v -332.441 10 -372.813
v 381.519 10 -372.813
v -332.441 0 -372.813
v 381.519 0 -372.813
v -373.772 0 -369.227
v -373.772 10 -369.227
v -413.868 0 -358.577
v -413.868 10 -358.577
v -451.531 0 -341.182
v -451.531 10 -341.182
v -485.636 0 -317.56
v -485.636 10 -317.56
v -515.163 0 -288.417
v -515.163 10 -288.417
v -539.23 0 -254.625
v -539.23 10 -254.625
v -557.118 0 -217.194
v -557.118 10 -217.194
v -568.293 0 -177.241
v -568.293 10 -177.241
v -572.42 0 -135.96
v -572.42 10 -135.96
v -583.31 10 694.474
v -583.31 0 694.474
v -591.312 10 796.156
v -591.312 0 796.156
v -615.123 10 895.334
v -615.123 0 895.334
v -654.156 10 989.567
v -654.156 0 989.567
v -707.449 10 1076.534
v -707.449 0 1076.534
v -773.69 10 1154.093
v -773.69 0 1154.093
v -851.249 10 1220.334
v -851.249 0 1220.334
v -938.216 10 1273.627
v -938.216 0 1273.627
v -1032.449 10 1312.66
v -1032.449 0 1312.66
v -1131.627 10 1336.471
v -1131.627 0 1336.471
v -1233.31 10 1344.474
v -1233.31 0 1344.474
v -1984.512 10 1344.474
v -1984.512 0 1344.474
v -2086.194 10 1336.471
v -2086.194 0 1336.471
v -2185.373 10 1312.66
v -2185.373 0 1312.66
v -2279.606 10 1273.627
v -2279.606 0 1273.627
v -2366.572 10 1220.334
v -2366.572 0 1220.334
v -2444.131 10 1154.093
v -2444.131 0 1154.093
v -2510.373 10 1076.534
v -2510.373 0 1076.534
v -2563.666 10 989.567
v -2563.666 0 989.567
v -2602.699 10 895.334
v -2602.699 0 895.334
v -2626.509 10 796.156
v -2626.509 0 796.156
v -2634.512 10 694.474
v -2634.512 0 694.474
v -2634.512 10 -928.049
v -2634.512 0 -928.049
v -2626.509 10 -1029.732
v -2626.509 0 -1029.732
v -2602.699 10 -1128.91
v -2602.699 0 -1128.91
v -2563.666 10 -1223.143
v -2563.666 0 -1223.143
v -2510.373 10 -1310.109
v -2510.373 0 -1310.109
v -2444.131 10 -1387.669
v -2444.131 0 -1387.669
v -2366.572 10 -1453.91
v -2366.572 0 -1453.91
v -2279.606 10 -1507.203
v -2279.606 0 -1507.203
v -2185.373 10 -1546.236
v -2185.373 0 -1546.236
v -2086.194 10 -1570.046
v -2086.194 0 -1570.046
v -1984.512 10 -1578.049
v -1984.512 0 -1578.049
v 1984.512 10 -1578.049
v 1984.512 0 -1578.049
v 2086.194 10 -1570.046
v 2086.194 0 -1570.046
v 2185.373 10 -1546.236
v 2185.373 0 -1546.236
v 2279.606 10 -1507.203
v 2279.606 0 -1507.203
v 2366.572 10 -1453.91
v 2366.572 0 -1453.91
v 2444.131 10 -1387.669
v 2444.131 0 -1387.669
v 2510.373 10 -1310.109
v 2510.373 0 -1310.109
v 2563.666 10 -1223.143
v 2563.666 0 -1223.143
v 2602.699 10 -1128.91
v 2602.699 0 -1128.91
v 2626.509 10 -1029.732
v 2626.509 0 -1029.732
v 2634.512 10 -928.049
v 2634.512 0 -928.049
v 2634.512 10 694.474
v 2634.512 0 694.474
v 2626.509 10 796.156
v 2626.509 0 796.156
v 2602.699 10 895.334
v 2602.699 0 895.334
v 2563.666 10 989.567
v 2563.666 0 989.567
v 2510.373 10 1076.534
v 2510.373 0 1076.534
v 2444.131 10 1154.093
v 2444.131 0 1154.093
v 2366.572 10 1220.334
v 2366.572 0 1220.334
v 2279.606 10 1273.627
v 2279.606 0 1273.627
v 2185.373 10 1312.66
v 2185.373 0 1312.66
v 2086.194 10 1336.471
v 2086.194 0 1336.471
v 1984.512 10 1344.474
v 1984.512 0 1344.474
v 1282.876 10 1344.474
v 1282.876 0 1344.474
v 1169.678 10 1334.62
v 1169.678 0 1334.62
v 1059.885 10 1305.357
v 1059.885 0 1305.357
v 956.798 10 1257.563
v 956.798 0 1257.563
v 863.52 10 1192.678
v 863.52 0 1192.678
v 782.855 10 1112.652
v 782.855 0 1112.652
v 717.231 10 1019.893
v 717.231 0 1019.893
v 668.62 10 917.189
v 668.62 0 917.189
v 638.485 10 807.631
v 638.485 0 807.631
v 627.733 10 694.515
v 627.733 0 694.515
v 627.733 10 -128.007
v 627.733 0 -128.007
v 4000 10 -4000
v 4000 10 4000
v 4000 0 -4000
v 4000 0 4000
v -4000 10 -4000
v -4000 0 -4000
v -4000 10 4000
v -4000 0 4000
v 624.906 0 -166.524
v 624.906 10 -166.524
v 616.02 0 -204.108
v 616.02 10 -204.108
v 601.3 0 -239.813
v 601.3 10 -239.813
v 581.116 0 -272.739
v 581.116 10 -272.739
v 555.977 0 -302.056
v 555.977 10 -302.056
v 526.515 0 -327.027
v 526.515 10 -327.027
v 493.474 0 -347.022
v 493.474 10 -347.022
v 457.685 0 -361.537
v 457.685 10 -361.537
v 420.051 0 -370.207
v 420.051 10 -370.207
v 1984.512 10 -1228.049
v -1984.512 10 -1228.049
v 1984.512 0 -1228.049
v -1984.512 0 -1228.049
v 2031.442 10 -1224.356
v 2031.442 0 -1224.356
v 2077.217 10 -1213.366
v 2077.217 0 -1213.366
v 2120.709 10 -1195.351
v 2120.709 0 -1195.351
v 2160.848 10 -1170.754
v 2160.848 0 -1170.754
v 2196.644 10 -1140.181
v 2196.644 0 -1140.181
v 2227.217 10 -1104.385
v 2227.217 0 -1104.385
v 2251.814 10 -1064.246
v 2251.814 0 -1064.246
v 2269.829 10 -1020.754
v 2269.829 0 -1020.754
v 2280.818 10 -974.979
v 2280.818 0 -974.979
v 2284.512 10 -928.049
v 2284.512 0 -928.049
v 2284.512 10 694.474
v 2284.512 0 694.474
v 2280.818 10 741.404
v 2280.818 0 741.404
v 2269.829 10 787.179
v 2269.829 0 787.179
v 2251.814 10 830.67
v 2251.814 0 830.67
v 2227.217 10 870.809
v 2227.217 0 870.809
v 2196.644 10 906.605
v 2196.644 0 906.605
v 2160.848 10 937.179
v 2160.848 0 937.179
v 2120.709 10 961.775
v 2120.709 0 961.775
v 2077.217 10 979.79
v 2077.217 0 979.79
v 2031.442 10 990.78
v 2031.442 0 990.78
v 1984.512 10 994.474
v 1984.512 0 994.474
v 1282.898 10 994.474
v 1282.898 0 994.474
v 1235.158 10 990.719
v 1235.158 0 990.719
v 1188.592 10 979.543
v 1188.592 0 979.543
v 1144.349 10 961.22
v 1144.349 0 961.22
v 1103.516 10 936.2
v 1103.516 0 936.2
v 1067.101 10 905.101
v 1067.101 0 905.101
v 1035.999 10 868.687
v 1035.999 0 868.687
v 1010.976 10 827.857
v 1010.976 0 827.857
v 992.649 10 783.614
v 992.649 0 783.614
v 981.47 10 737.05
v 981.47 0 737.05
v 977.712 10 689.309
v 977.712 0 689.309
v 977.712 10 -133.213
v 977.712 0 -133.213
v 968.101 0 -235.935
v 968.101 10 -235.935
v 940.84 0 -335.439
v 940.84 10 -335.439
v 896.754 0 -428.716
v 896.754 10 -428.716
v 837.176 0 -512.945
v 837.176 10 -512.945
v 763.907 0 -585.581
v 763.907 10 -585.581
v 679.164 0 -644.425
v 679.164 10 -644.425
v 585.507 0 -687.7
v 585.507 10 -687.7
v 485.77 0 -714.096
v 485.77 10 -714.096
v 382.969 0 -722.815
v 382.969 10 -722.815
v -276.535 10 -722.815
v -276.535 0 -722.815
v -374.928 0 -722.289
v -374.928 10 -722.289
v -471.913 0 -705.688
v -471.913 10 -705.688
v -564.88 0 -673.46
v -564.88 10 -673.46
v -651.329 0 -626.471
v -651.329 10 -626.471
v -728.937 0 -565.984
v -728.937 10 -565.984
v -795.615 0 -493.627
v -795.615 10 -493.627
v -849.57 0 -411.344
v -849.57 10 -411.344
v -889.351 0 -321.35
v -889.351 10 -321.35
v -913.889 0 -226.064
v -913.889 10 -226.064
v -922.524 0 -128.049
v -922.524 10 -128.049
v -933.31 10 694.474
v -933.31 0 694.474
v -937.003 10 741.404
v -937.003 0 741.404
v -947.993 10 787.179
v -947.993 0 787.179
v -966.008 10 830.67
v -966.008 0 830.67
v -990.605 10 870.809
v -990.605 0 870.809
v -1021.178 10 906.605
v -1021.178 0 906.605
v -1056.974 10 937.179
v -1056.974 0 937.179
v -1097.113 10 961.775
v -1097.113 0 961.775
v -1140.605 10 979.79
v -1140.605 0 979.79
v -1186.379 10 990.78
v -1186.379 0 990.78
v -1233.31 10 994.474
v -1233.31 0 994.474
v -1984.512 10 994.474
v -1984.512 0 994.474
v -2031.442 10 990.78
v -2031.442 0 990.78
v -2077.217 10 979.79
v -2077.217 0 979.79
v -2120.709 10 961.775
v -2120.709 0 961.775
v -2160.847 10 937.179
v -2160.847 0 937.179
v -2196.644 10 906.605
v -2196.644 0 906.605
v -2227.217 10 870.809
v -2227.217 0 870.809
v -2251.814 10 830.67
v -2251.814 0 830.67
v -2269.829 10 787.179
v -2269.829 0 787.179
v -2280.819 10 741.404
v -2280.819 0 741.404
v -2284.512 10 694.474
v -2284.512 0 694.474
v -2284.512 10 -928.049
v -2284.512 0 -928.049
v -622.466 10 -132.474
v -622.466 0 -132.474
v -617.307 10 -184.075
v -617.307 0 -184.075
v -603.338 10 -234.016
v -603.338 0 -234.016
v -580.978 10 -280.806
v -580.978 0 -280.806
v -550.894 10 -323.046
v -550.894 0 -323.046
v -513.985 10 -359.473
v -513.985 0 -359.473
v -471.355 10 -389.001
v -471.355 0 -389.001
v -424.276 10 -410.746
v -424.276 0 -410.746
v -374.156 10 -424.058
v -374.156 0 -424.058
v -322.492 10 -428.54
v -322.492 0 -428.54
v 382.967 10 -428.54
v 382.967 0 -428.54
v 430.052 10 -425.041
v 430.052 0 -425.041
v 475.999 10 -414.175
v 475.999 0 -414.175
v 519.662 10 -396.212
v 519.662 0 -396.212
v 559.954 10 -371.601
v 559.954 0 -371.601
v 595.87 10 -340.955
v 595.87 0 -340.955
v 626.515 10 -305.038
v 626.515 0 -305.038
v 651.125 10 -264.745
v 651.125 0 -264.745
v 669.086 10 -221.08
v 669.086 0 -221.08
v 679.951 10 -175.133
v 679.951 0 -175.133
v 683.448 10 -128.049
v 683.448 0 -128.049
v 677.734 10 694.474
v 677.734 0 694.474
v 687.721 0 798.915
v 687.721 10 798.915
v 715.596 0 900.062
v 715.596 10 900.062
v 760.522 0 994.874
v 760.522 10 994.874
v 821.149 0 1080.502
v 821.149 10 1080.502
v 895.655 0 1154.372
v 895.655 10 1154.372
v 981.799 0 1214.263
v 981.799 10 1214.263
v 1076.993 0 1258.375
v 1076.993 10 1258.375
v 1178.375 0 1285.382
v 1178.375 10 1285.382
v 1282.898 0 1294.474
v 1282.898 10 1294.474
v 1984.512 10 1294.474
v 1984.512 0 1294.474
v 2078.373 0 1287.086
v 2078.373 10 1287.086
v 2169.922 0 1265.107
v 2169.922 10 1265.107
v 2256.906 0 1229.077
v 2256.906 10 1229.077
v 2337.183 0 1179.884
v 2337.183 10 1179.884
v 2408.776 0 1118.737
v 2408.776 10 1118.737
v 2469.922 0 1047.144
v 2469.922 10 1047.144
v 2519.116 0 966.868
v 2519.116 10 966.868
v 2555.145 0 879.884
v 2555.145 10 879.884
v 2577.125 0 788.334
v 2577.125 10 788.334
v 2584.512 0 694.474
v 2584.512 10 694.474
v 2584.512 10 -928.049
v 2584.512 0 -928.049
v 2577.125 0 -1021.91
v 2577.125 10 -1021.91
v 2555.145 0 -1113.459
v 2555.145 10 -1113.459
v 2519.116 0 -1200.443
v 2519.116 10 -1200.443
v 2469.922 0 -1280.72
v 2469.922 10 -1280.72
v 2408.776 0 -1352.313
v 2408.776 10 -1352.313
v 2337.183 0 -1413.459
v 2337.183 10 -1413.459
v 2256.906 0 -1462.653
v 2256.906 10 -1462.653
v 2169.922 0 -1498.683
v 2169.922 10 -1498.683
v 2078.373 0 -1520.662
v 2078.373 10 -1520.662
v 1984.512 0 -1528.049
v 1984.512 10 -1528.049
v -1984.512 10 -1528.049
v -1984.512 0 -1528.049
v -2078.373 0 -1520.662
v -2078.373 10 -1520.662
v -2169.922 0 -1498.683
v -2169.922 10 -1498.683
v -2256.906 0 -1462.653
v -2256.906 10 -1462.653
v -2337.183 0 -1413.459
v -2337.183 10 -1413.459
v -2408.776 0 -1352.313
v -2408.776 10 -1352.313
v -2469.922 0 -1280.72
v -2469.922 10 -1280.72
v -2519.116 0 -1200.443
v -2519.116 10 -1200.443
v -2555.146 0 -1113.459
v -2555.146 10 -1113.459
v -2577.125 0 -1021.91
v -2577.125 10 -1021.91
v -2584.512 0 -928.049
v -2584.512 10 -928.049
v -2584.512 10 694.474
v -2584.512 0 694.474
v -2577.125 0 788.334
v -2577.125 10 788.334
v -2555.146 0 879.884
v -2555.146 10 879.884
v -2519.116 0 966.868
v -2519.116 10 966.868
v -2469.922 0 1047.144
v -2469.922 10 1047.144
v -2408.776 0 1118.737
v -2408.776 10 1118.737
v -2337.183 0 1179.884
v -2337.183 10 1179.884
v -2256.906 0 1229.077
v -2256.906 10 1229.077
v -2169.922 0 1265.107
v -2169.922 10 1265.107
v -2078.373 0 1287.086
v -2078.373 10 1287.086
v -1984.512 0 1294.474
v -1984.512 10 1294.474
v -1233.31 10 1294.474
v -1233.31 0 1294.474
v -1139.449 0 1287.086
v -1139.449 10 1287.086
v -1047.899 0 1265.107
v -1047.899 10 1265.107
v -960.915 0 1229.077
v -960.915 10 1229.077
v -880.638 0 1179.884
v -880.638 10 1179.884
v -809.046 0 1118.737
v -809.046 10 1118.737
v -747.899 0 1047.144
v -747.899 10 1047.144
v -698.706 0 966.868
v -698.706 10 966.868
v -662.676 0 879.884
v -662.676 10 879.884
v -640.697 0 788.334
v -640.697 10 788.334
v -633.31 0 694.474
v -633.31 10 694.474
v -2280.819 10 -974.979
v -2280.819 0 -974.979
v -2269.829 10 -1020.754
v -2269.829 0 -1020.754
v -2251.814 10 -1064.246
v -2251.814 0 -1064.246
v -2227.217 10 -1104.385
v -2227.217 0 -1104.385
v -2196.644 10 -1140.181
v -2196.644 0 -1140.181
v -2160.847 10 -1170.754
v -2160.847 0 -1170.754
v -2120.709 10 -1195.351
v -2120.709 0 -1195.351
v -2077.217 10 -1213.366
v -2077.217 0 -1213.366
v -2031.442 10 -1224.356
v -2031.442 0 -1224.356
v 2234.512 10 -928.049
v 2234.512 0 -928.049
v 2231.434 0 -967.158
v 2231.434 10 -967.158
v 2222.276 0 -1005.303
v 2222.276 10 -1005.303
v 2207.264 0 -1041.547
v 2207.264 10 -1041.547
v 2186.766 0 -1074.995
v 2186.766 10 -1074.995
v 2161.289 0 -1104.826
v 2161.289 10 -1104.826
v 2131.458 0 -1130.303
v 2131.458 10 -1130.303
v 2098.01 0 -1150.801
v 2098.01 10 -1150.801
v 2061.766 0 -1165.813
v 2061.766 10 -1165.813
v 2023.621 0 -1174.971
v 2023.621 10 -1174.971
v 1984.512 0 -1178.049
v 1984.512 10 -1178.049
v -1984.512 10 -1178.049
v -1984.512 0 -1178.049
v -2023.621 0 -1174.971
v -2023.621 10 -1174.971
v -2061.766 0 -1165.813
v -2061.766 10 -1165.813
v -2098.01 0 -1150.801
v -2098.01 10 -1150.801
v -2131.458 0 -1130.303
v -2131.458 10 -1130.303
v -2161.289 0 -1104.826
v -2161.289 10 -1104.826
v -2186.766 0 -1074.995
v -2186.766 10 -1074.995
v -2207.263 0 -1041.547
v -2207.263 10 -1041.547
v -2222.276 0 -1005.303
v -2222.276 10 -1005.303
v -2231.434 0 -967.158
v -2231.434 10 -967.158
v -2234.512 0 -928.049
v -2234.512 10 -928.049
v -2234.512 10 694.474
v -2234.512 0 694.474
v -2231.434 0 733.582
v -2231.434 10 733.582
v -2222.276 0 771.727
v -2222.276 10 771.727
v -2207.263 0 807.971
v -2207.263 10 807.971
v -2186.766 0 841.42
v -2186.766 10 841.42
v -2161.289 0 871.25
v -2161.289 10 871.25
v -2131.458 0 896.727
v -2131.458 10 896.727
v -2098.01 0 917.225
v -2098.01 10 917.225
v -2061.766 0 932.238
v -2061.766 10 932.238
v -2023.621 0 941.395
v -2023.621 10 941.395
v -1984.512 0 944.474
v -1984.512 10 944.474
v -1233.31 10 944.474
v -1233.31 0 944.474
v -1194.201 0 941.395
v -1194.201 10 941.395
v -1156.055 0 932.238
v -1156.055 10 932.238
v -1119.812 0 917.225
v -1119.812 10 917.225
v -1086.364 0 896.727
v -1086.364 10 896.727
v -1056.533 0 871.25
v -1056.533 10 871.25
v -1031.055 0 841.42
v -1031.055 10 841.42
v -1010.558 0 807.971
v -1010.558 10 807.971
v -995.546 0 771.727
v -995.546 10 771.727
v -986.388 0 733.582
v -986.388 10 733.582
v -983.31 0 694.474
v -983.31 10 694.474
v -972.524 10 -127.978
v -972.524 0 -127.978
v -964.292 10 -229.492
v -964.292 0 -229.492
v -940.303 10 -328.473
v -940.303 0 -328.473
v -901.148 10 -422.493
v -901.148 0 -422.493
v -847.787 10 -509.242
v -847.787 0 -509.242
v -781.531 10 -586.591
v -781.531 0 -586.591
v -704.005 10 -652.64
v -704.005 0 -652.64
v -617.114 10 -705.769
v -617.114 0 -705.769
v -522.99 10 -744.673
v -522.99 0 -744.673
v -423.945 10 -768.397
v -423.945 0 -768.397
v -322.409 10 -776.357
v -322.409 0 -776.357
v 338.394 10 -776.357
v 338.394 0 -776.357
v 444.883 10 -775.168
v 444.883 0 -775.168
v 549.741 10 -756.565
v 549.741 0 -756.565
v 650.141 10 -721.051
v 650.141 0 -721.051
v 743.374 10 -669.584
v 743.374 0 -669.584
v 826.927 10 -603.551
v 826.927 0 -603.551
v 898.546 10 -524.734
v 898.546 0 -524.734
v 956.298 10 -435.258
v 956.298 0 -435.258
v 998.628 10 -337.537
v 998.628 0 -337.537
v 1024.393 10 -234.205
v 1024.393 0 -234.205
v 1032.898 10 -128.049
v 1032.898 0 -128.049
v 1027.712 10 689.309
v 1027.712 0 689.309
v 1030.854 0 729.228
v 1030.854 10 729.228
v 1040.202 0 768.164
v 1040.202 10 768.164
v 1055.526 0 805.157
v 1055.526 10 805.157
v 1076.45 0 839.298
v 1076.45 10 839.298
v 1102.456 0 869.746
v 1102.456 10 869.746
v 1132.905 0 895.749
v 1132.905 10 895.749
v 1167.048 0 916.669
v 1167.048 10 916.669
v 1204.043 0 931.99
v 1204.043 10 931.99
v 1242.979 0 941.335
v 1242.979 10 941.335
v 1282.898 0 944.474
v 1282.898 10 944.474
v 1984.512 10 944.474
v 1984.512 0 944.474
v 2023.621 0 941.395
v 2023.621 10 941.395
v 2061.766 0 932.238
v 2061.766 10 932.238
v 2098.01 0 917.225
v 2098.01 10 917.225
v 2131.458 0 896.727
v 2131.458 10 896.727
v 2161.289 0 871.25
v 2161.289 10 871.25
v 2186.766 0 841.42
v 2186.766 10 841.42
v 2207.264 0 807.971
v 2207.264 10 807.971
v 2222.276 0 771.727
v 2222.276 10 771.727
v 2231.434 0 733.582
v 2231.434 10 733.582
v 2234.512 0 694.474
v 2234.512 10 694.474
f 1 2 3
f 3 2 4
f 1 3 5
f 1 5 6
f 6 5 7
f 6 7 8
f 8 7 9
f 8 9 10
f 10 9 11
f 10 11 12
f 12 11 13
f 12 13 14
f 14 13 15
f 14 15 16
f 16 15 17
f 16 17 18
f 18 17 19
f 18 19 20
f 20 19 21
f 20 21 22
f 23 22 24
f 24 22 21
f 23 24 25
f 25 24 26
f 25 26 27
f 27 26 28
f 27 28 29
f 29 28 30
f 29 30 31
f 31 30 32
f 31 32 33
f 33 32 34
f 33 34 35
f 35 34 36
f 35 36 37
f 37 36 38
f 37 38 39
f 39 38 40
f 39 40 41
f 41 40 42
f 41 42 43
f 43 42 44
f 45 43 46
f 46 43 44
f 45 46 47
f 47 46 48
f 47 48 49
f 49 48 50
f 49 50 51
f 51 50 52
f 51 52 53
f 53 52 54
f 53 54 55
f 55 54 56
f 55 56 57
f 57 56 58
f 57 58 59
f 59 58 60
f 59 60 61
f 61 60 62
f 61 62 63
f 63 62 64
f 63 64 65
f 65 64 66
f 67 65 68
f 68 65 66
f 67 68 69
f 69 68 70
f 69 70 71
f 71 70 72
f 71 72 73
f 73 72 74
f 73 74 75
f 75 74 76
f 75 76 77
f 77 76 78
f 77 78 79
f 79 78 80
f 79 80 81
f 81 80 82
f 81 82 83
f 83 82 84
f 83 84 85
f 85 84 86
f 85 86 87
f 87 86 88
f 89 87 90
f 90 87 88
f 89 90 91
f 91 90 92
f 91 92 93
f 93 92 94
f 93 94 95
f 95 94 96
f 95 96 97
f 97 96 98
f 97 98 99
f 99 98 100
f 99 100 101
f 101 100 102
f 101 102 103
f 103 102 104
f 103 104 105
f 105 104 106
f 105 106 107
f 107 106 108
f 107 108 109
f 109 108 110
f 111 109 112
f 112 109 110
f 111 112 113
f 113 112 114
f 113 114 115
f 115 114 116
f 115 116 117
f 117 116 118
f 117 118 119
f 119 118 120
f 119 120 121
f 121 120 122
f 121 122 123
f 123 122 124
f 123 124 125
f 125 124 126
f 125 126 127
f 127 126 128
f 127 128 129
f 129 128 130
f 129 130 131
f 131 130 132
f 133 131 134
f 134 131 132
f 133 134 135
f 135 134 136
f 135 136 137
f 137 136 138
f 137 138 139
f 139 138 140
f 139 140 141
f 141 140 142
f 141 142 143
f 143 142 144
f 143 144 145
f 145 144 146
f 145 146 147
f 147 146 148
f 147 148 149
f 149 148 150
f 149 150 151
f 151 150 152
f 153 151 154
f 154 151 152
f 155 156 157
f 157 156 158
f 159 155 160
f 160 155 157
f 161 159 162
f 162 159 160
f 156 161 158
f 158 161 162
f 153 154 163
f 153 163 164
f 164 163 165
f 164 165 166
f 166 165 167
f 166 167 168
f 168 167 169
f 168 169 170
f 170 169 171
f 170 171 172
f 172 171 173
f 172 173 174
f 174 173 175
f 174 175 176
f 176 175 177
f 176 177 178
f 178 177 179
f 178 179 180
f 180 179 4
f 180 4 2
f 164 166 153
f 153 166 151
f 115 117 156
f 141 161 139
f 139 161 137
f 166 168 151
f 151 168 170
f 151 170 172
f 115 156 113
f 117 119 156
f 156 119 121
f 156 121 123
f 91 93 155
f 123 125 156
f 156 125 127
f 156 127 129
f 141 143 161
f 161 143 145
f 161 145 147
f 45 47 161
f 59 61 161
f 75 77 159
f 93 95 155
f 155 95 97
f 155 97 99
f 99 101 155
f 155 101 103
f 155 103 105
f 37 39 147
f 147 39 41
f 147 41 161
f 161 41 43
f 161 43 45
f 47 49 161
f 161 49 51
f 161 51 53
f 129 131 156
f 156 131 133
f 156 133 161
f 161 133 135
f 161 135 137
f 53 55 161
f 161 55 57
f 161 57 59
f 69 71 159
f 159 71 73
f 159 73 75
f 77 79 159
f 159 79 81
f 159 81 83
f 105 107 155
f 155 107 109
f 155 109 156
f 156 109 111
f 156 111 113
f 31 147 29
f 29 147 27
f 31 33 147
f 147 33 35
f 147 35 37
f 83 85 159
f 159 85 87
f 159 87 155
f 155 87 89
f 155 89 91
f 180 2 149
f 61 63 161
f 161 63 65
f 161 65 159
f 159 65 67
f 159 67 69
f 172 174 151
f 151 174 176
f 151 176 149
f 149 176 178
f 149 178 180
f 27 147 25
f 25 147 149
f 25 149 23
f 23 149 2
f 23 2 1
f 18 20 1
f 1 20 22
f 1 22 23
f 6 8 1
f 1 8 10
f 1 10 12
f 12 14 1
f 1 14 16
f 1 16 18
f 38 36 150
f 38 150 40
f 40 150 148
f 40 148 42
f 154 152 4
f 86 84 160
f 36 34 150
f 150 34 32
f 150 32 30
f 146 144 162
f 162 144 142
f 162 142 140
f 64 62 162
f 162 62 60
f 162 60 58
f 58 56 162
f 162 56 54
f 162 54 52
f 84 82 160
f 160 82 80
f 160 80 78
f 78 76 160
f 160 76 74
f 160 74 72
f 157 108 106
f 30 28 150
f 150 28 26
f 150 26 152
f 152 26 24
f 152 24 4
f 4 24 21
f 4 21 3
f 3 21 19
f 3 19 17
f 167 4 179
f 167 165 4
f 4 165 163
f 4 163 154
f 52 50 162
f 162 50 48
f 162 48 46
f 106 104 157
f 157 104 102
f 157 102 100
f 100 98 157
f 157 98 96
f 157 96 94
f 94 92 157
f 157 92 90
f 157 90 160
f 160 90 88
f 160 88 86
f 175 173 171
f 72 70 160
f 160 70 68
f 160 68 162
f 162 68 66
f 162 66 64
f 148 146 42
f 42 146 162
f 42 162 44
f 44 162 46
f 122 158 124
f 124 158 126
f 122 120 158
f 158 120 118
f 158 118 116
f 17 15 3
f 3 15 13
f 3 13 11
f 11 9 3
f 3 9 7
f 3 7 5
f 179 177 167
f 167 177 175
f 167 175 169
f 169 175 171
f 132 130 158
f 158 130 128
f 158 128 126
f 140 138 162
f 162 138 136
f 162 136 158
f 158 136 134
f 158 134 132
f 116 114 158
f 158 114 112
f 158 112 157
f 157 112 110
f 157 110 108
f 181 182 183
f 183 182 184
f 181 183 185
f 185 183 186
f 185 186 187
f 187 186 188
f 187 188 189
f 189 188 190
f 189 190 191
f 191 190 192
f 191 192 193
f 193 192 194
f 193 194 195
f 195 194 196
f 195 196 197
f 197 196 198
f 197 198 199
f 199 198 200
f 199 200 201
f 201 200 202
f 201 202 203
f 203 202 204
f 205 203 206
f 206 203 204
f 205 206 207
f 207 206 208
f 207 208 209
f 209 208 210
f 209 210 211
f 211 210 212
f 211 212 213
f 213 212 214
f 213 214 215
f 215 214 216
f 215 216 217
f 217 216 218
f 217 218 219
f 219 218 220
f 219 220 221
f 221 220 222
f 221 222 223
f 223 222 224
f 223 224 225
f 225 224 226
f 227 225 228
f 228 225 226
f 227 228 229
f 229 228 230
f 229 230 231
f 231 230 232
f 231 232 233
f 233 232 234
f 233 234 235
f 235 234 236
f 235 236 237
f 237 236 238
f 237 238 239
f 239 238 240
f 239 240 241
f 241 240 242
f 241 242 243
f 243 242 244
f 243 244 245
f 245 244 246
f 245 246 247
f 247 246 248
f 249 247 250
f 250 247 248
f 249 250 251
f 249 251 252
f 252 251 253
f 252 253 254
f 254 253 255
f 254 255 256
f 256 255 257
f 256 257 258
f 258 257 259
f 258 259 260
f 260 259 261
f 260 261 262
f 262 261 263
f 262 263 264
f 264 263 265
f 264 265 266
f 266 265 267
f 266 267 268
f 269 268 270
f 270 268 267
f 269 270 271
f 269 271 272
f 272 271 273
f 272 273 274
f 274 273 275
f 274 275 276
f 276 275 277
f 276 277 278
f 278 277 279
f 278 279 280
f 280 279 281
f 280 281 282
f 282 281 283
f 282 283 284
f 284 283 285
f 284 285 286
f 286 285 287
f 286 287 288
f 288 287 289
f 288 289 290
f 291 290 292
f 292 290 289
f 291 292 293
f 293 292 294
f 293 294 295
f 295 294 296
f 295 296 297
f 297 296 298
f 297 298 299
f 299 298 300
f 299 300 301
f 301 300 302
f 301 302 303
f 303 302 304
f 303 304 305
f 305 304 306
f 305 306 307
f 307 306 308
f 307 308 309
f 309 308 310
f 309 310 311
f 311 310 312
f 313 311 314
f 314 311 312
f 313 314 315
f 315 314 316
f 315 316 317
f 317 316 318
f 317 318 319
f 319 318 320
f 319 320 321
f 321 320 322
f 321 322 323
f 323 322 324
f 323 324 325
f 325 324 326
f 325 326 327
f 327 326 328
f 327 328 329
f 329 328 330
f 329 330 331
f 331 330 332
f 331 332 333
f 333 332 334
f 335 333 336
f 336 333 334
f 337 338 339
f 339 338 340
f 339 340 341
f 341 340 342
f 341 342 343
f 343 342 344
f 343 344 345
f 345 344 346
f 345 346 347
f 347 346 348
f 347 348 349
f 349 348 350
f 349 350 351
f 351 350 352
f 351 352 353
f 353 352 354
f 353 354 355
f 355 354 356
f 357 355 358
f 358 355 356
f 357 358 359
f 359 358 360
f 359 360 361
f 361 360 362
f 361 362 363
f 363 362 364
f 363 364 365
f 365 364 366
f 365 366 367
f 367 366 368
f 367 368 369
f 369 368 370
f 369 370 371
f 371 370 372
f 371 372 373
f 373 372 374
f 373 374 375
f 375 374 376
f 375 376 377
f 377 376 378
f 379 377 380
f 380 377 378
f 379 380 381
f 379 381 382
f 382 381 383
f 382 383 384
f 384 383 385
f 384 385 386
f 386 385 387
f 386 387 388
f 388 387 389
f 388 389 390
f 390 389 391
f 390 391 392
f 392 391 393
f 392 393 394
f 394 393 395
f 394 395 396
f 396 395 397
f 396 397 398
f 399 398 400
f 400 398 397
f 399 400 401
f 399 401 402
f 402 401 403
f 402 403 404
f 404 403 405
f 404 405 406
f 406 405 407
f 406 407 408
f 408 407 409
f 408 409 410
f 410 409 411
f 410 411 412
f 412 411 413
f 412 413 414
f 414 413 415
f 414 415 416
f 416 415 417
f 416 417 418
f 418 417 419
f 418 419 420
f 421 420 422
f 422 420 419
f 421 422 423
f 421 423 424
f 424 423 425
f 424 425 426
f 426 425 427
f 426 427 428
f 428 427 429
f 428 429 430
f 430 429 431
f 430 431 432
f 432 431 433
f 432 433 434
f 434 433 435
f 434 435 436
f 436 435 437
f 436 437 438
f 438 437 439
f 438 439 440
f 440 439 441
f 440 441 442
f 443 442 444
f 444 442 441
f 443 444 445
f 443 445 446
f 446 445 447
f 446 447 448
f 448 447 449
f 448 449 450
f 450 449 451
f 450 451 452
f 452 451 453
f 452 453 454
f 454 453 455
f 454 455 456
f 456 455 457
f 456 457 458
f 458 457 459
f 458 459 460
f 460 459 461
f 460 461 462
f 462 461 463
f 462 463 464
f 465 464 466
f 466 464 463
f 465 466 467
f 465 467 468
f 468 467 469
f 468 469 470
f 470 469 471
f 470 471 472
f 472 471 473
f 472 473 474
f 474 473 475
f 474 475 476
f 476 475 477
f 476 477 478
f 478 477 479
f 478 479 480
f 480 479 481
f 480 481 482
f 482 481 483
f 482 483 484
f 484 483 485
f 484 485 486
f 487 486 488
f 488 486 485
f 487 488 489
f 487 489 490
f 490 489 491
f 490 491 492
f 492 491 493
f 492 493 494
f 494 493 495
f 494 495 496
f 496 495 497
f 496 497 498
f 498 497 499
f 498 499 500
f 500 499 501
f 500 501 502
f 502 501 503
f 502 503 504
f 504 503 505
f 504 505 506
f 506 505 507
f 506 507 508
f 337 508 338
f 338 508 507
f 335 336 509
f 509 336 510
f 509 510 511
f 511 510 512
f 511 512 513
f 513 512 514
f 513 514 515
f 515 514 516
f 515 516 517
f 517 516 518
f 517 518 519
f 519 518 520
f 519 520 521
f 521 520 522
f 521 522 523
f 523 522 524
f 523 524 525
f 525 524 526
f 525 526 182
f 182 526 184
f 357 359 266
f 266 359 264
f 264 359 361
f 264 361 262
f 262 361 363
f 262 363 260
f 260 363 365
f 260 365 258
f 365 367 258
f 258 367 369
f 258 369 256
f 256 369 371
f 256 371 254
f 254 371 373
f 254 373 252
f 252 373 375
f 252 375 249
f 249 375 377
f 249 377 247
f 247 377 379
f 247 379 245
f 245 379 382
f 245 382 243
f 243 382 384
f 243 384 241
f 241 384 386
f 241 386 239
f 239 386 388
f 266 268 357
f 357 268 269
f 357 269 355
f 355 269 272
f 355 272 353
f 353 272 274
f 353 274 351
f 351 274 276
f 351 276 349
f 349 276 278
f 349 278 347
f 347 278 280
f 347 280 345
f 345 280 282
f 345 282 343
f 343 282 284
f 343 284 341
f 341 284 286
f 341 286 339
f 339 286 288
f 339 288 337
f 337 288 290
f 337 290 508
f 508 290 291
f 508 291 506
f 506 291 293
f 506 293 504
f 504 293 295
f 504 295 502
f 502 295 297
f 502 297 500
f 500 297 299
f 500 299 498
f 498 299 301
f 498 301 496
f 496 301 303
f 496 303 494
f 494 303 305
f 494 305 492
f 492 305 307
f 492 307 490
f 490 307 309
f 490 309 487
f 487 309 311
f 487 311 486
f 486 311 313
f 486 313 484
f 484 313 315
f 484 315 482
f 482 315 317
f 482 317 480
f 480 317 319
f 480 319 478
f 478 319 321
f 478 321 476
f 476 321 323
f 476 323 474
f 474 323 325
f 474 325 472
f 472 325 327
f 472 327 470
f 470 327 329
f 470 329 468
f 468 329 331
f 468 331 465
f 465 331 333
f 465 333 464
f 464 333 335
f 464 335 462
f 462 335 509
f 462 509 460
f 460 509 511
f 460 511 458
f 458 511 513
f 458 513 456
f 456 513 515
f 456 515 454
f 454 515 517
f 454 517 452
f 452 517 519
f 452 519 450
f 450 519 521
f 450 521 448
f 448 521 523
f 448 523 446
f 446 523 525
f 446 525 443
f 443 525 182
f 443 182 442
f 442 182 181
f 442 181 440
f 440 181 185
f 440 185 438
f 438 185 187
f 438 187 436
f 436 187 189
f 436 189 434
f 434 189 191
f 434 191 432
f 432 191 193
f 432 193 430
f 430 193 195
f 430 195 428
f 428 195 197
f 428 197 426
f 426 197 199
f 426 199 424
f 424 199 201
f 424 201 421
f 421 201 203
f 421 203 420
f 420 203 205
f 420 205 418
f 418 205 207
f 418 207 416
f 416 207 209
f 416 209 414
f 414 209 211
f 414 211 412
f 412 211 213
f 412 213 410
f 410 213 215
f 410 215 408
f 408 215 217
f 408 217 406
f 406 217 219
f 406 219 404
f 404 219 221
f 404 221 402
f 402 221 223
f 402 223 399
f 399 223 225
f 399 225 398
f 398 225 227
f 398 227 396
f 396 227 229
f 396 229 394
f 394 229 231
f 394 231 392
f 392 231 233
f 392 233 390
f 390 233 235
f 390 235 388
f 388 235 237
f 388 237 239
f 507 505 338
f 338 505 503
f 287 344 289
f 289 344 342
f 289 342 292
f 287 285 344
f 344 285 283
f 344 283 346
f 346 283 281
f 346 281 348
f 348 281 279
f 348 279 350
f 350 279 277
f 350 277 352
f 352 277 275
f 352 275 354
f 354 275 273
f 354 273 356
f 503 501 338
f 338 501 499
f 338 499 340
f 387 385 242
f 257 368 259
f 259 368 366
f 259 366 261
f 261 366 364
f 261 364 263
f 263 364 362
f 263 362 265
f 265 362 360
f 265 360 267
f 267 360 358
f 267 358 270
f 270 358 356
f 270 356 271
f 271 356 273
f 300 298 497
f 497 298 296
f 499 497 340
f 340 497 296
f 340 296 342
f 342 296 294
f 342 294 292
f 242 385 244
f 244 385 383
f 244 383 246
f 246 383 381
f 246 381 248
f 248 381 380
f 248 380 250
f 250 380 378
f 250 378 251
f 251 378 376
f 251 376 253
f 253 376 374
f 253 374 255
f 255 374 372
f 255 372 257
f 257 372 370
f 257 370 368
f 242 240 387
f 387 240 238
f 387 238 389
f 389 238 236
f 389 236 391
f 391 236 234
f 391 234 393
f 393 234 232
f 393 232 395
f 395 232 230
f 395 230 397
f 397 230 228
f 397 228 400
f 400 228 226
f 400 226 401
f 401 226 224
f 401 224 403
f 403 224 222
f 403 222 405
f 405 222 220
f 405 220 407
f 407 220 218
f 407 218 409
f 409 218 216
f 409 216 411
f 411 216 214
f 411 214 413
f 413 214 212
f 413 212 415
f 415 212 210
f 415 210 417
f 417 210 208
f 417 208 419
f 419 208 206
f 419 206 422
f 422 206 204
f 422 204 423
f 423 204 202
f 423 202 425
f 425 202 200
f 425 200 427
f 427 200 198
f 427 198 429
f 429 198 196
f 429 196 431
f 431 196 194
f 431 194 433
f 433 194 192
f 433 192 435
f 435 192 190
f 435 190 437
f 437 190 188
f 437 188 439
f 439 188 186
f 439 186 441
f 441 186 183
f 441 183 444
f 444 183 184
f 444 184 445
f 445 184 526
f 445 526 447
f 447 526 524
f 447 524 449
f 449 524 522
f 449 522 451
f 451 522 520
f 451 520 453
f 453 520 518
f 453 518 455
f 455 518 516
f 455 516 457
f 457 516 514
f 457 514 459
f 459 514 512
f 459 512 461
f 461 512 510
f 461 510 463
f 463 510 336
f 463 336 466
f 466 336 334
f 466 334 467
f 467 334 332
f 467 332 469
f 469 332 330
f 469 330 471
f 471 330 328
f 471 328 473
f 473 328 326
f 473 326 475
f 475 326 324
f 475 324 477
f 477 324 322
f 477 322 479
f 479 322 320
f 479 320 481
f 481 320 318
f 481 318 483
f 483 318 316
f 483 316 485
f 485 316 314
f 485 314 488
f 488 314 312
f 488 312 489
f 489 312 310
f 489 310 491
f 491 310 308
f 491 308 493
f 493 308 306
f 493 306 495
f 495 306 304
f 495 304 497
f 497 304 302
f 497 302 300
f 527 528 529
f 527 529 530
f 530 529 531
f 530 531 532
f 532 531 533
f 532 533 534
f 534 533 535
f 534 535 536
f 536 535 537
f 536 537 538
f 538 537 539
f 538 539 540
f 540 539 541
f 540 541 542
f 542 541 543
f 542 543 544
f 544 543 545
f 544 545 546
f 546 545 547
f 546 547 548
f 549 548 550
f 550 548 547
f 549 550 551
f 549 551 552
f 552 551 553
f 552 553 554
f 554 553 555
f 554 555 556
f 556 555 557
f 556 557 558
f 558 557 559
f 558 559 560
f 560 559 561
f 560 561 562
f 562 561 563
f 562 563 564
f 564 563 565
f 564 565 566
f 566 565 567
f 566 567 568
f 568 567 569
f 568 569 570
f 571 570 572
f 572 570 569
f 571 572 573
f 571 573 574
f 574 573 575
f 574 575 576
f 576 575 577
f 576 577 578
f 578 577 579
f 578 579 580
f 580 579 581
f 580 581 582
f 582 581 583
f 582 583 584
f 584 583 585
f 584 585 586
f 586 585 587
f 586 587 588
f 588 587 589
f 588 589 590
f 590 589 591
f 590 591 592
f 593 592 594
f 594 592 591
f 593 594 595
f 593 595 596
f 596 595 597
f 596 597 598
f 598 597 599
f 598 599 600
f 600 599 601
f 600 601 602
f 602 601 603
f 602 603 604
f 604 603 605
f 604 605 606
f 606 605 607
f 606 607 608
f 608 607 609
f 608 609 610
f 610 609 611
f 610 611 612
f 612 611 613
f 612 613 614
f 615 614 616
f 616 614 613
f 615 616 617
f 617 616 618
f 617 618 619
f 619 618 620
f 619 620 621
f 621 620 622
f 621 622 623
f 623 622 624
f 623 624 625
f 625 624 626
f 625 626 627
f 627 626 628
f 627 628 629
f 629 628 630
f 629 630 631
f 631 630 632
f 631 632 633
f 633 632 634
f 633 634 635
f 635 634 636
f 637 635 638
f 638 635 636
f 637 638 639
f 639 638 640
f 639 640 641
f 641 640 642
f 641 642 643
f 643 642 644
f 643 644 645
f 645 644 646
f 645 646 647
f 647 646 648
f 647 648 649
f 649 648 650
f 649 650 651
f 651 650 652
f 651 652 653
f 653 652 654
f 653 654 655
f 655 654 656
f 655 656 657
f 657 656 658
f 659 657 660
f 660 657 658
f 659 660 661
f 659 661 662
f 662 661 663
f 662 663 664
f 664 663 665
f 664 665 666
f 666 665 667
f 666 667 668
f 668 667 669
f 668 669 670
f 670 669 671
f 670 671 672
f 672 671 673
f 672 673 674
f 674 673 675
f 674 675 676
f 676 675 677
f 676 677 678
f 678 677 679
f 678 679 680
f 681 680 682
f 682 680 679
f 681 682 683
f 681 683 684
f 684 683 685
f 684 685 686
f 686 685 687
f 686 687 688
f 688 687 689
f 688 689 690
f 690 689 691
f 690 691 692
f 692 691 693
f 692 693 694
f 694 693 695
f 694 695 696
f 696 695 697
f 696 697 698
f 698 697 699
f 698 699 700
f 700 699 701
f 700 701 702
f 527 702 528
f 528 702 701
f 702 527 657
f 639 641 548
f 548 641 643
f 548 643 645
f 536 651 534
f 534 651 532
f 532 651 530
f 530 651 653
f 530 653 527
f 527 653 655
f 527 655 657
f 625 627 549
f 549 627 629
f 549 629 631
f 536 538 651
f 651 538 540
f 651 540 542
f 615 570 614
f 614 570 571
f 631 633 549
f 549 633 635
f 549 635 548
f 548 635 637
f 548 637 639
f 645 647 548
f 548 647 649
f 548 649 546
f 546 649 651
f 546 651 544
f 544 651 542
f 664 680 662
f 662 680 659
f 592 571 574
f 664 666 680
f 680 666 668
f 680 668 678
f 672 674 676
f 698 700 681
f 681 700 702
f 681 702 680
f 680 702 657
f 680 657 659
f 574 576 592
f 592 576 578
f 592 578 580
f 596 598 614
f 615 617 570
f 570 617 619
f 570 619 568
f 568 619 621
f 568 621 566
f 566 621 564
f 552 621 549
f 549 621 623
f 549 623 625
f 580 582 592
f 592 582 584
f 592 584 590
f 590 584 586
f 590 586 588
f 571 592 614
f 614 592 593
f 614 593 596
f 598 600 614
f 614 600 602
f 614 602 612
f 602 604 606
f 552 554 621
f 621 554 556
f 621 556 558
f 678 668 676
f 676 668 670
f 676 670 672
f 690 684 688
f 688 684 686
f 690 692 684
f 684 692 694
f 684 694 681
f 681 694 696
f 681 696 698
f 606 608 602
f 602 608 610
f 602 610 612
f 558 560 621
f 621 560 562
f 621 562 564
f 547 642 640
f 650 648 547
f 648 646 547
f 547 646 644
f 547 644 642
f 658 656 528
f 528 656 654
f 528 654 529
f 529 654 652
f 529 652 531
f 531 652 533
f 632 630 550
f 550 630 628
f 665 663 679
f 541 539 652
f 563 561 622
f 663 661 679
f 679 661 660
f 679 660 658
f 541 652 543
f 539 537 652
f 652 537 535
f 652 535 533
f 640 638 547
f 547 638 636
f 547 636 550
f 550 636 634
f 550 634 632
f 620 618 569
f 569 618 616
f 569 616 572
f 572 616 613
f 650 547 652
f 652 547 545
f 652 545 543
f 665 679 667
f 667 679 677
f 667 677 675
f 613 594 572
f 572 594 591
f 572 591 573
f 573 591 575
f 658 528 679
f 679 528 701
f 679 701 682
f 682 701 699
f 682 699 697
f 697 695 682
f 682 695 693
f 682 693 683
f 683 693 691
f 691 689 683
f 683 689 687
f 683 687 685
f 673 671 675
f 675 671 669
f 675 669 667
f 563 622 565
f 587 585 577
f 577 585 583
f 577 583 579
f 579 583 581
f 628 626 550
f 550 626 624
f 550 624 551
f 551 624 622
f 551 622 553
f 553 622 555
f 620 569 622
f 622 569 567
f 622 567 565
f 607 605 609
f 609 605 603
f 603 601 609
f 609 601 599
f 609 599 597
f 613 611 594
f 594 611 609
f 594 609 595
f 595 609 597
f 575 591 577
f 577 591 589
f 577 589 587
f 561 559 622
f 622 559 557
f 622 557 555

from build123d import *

# Parameters (mm, degrees)
SKETCH1_W             = 8000
SKETCH1_H             = 8000
BOSS_EXTRUDE1_DEPTH   = 10
BOSS_EXTRUDE1_2_DEPTH = 10
BOSS_EXTRUDE1_3_DEPTH = 10


with BuildPart() as part:
    # Sketch1 → Boss-Extrude1 (new body)
    with BuildSketch(Plane(origin=(0, 0, 0), x_dir=(1, 0, 0), z_dir=(0, 1, 0))):
        Rectangle(SKETCH1_W, SKETCH1_H)
        with BuildLine():
            Line((-332.440811098, 372.812938413), (381.518586898, 372.812938413))
            ThreePointArc((381.518586898, 372.812938413), (555.976577605, 302.056472372), (627.732993812, 128.007385212))
            Line((627.732993812, 128.007385212), (627.732993812, -694.515046657))
            ThreePointArc((627.732993812, -694.515046657), (821.44963805, -1154.417175641), (1282.87647146, -1344.473440754))
            Line((1282.87647146, -1344.473440754), (1984.511930504, -1344.473440754))
            ThreePointArc((1984.511930504, -1344.473440754), (2444.131338275, -1154.092848525), (2634.511930504, -694.473440754))
            Line((2634.511930504, -694.473440754), (2634.511930504, 128.048991114))
            Line((2634.511930504, 128.048991114), (2634.511930504, 928.048991114))
            ThreePointArc((2634.511930504, 928.048991114), (2444.131338275, 1387.668398886), (1984.511930504, 1578.048991114))
            Line((1984.511930504, 1578.048991114), (-1984.511930504, 1578.048991114))
            ThreePointArc((-1984.511930504, 1578.048991114), (-2444.131338275, 1387.668398886), (-2634.511930504, 928.048991114))
            Line((-2634.511930504, 928.048991114), (-2634.511930504, 128.048991114))
            Line((-2634.511930504, 128.048991114), (-2634.511930504, -694.473440754))
            ThreePointArc((-2634.511930504, -694.473440754), (-2444.131338275, -1154.092848525), (-1984.511930504, -1344.473440754))
            Line((-1984.511930504, -1344.473440754), (-1233.309703409, -1344.473440754))
            ThreePointArc((-1233.309703409, -1344.473440754), (-773.690295638, -1154.092848525), (-583.309703409, -694.473440754))
            Line((-583.309703409, -694.473440754), (-572.420179467, 135.959803133))
            ThreePointArc((-572.420179467, 135.959803133), (-501.030182749, 303.62752727), (-332.440811098, 372.812938413))
        make_face(mode=Mode.SUBTRACT)
    extrude(amount=BOSS_EXTRUDE1_DEPTH)


with BuildPart() as body_2:
    # Sketch1 → Boss-Extrude1 2 (new body)
    with BuildSketch(Plane(origin=(0, 0, 0), x_dir=(1, 0, 0), z_dir=(0, 1, 0))):
        with BuildLine():
            ThreePointArc((-322.491680317, 428.540285438), (-533.22839488, 342.058521509), (-622.465890777, 132.473866338))
            Line((-622.465890777, 132.473866338), (-633.309703409, -694.473440754))
            ThreePointArc((-633.309703409, -694.473440754), (-809.045634697, -1118.737509466), (-1233.309703409, -1294.473440754))
            Line((-1233.309703409, -1294.473440754), (-1984.511930504, -1294.473440754))
            ThreePointArc((-1984.511930504, -1294.473440754), (-2408.775999216, -1118.737509466), (-2584.511930504, -694.473440754))
            Line((-2584.511930504, -694.473440754), (-2584.511930504, 128.048991114))
            Line((-2584.511930504, 128.048991114), (-2584.511930504, 928.048991114))
            ThreePointArc((-2584.511930504, 928.048991114), (-2408.775999216, 1352.313059826), (-1984.511930504, 1528.048991114))
            Line((-1984.511930504, 1528.048991114), (1984.511930504, 1528.048991114))
            ThreePointArc((1984.511930504, 1528.048991114), (2408.775999216, 1352.313059826), (2584.511930504, 928.048991114))
            Line((2584.511930504, 928.048991114), (2584.511930504, 128.048991114))
            Line((2584.511930504, 128.048991114), (2584.511930504, -694.473440754))
            ThreePointArc((2584.511930504, -694.473440754), (2408.775999216, -1118.737509466), (1984.511930504, -1294.473440754))
            Line((1984.511930504, -1294.473440754), (1282.898506005, -1294.473440754))
            ThreePointArc((1282.898506005, -1294.473440754), (856.798331797, -1119.054647069), (677.734345793, -694.473440991))
            Line((677.734345793, -694.473440991), (683.447655029, 128.048977101))
            ThreePointArc((683.447655029, 128.048977101), (595.870328955, 340.95505197), (382.967506906, 428.540285438))
            Line((382.967506906, 428.540285438), (-322.491680317, 428.540285438))
        make_face()
        with BuildLine():
            Line((-1984.511930504, 1228.048991114), (1984.511930504, 1228.048991114))
            ThreePointArc((1984.511930504, 1228.048991114), (2196.64396486, 1140.18102547), (2284.511930504, 928.048991114))
            Line((2284.511930504, 928.048991114), (2284.511930504, 128.048991114))
            Line((2284.511930504, 128.048991114), (2284.511930504, -694.473440754))
            ThreePointArc((2284.511930504, -694.473440754), (2196.64396486, -906.60547511), (1984.511930504, -994.473440754))
            Line((1984.511930504, -994.473440754), (1282.898506005, -994.473440754))
            ThreePointArc((1282.898506005, -994.473440754), (1067.100614733, -905.100718615), (977.712310853, -689.309281182))
            Line((977.712310853, -689.309281182), (977.712310853, 133.213150686))
            ThreePointArc((977.712310853, 133.213150686), (802.123284212, 550.858545051), (382.969049813, 722.814671712))
            Line((382.969049813, 722.814671712), (-276.535170431, 722.814671712))
            ThreePointArc((-276.535170431, 722.814671712), (-728.936594404, 565.983819508), (-922.523914451, 128.04899087))
            Line((-922.523914451, 128.04899087), (-933.309703409, -694.473440754))
            ThreePointArc((-933.309703409, -694.473440754), (-1021.177669053, -906.60547511), (-1233.309703409, -994.473440754))
            Line((-1233.309703409, -994.473440754), (-1984.511930504, -994.473440754))
            ThreePointArc((-1984.511930504, -994.473440754), (-2196.64396486, -906.60547511), (-2284.511930504, -694.473440754))
            Line((-2284.511930504, -694.473440754), (-2284.511930504, 128.048991114))
            Line((-2284.511930504, 128.048991114), (-2284.511930504, 928.048991114))
            ThreePointArc((-2284.511930504, 928.048991114), (-2196.64396486, 1140.18102547), (-1984.511930504, 1228.048991114))
        make_face(mode=Mode.SUBTRACT)
    extrude(amount=BOSS_EXTRUDE1_2_DEPTH)


with BuildPart() as body_3:
    # Sketch1 → Boss-Extrude1 3 (new body)
    with BuildSketch(Plane(origin=(0, 0, 0), x_dir=(1, 0, 0), z_dir=(0, 1, 0))):
        with BuildLine():
            ThreePointArc((1984.511930504, 1178.048991114), (2161.2886258, 1104.825686411), (2234.511930504, 928.048991114))
            Line((2234.511930504, 928.048991114), (2234.511930504, 128.048991114))
            Line((2234.511930504, 128.048991114), (2234.511930504, -694.473440754))
            ThreePointArc((2234.511930504, -694.473440754), (2161.2886258, -871.250136051), (1984.511930504, -944.473440754))
            Line((1984.511930504, -944.473440754), (1282.898506005, -944.473440754))
            ThreePointArc((1282.898506005, -944.473440754), (1102.455953711, -869.745379639), (1027.712310697, -689.309281184))
            Line((1027.712310697, -689.309281184), (1032.898506005, 128.048990878))
            ThreePointArc((1032.898506005, 128.048990878), (826.927169977, 603.551397866), (338.393858854, 776.357457486))
            Line((338.393858854, 776.357457486), (-322.409238813, 776.357457486))
            ThreePointArc((-322.409238813, 776.357457486), (-781.53063335, 586.590764344), (-972.523914451, 127.978270706))
            Line((-972.523914451, 127.978270706), (-983.309703409, -694.473440754))
            ThreePointArc((-983.309703409, -694.473440754), (-1056.533008112, -871.250136051), (-1233.309703409, -944.473440754))
            Line((-1233.309703409, -944.473440754), (-1984.511930504, -944.473440754))
            ThreePointArc((-1984.511930504, -944.473440754), (-2161.2886258, -871.250136051), (-2234.511930504, -694.473440754))
            Line((-2234.511930504, -694.473440754), (-2234.511930504, 128.048991114))
            Line((-2234.511930504, 128.048991114), (-2234.511930504, 928.048991114))
            ThreePointArc((-2234.511930504, 928.048991114), (-2161.2886258, 1104.825686411), (-1984.511930504, 1178.048991114))
            Line((-1984.511930504, 1178.048991114), (1984.511930504, 1178.048991114))
        make_face()
    extrude(amount=BOSS_EXTRUDE1_3_DEPTH)


solid = Compound([part.part, body_2.part, body_3.part])
